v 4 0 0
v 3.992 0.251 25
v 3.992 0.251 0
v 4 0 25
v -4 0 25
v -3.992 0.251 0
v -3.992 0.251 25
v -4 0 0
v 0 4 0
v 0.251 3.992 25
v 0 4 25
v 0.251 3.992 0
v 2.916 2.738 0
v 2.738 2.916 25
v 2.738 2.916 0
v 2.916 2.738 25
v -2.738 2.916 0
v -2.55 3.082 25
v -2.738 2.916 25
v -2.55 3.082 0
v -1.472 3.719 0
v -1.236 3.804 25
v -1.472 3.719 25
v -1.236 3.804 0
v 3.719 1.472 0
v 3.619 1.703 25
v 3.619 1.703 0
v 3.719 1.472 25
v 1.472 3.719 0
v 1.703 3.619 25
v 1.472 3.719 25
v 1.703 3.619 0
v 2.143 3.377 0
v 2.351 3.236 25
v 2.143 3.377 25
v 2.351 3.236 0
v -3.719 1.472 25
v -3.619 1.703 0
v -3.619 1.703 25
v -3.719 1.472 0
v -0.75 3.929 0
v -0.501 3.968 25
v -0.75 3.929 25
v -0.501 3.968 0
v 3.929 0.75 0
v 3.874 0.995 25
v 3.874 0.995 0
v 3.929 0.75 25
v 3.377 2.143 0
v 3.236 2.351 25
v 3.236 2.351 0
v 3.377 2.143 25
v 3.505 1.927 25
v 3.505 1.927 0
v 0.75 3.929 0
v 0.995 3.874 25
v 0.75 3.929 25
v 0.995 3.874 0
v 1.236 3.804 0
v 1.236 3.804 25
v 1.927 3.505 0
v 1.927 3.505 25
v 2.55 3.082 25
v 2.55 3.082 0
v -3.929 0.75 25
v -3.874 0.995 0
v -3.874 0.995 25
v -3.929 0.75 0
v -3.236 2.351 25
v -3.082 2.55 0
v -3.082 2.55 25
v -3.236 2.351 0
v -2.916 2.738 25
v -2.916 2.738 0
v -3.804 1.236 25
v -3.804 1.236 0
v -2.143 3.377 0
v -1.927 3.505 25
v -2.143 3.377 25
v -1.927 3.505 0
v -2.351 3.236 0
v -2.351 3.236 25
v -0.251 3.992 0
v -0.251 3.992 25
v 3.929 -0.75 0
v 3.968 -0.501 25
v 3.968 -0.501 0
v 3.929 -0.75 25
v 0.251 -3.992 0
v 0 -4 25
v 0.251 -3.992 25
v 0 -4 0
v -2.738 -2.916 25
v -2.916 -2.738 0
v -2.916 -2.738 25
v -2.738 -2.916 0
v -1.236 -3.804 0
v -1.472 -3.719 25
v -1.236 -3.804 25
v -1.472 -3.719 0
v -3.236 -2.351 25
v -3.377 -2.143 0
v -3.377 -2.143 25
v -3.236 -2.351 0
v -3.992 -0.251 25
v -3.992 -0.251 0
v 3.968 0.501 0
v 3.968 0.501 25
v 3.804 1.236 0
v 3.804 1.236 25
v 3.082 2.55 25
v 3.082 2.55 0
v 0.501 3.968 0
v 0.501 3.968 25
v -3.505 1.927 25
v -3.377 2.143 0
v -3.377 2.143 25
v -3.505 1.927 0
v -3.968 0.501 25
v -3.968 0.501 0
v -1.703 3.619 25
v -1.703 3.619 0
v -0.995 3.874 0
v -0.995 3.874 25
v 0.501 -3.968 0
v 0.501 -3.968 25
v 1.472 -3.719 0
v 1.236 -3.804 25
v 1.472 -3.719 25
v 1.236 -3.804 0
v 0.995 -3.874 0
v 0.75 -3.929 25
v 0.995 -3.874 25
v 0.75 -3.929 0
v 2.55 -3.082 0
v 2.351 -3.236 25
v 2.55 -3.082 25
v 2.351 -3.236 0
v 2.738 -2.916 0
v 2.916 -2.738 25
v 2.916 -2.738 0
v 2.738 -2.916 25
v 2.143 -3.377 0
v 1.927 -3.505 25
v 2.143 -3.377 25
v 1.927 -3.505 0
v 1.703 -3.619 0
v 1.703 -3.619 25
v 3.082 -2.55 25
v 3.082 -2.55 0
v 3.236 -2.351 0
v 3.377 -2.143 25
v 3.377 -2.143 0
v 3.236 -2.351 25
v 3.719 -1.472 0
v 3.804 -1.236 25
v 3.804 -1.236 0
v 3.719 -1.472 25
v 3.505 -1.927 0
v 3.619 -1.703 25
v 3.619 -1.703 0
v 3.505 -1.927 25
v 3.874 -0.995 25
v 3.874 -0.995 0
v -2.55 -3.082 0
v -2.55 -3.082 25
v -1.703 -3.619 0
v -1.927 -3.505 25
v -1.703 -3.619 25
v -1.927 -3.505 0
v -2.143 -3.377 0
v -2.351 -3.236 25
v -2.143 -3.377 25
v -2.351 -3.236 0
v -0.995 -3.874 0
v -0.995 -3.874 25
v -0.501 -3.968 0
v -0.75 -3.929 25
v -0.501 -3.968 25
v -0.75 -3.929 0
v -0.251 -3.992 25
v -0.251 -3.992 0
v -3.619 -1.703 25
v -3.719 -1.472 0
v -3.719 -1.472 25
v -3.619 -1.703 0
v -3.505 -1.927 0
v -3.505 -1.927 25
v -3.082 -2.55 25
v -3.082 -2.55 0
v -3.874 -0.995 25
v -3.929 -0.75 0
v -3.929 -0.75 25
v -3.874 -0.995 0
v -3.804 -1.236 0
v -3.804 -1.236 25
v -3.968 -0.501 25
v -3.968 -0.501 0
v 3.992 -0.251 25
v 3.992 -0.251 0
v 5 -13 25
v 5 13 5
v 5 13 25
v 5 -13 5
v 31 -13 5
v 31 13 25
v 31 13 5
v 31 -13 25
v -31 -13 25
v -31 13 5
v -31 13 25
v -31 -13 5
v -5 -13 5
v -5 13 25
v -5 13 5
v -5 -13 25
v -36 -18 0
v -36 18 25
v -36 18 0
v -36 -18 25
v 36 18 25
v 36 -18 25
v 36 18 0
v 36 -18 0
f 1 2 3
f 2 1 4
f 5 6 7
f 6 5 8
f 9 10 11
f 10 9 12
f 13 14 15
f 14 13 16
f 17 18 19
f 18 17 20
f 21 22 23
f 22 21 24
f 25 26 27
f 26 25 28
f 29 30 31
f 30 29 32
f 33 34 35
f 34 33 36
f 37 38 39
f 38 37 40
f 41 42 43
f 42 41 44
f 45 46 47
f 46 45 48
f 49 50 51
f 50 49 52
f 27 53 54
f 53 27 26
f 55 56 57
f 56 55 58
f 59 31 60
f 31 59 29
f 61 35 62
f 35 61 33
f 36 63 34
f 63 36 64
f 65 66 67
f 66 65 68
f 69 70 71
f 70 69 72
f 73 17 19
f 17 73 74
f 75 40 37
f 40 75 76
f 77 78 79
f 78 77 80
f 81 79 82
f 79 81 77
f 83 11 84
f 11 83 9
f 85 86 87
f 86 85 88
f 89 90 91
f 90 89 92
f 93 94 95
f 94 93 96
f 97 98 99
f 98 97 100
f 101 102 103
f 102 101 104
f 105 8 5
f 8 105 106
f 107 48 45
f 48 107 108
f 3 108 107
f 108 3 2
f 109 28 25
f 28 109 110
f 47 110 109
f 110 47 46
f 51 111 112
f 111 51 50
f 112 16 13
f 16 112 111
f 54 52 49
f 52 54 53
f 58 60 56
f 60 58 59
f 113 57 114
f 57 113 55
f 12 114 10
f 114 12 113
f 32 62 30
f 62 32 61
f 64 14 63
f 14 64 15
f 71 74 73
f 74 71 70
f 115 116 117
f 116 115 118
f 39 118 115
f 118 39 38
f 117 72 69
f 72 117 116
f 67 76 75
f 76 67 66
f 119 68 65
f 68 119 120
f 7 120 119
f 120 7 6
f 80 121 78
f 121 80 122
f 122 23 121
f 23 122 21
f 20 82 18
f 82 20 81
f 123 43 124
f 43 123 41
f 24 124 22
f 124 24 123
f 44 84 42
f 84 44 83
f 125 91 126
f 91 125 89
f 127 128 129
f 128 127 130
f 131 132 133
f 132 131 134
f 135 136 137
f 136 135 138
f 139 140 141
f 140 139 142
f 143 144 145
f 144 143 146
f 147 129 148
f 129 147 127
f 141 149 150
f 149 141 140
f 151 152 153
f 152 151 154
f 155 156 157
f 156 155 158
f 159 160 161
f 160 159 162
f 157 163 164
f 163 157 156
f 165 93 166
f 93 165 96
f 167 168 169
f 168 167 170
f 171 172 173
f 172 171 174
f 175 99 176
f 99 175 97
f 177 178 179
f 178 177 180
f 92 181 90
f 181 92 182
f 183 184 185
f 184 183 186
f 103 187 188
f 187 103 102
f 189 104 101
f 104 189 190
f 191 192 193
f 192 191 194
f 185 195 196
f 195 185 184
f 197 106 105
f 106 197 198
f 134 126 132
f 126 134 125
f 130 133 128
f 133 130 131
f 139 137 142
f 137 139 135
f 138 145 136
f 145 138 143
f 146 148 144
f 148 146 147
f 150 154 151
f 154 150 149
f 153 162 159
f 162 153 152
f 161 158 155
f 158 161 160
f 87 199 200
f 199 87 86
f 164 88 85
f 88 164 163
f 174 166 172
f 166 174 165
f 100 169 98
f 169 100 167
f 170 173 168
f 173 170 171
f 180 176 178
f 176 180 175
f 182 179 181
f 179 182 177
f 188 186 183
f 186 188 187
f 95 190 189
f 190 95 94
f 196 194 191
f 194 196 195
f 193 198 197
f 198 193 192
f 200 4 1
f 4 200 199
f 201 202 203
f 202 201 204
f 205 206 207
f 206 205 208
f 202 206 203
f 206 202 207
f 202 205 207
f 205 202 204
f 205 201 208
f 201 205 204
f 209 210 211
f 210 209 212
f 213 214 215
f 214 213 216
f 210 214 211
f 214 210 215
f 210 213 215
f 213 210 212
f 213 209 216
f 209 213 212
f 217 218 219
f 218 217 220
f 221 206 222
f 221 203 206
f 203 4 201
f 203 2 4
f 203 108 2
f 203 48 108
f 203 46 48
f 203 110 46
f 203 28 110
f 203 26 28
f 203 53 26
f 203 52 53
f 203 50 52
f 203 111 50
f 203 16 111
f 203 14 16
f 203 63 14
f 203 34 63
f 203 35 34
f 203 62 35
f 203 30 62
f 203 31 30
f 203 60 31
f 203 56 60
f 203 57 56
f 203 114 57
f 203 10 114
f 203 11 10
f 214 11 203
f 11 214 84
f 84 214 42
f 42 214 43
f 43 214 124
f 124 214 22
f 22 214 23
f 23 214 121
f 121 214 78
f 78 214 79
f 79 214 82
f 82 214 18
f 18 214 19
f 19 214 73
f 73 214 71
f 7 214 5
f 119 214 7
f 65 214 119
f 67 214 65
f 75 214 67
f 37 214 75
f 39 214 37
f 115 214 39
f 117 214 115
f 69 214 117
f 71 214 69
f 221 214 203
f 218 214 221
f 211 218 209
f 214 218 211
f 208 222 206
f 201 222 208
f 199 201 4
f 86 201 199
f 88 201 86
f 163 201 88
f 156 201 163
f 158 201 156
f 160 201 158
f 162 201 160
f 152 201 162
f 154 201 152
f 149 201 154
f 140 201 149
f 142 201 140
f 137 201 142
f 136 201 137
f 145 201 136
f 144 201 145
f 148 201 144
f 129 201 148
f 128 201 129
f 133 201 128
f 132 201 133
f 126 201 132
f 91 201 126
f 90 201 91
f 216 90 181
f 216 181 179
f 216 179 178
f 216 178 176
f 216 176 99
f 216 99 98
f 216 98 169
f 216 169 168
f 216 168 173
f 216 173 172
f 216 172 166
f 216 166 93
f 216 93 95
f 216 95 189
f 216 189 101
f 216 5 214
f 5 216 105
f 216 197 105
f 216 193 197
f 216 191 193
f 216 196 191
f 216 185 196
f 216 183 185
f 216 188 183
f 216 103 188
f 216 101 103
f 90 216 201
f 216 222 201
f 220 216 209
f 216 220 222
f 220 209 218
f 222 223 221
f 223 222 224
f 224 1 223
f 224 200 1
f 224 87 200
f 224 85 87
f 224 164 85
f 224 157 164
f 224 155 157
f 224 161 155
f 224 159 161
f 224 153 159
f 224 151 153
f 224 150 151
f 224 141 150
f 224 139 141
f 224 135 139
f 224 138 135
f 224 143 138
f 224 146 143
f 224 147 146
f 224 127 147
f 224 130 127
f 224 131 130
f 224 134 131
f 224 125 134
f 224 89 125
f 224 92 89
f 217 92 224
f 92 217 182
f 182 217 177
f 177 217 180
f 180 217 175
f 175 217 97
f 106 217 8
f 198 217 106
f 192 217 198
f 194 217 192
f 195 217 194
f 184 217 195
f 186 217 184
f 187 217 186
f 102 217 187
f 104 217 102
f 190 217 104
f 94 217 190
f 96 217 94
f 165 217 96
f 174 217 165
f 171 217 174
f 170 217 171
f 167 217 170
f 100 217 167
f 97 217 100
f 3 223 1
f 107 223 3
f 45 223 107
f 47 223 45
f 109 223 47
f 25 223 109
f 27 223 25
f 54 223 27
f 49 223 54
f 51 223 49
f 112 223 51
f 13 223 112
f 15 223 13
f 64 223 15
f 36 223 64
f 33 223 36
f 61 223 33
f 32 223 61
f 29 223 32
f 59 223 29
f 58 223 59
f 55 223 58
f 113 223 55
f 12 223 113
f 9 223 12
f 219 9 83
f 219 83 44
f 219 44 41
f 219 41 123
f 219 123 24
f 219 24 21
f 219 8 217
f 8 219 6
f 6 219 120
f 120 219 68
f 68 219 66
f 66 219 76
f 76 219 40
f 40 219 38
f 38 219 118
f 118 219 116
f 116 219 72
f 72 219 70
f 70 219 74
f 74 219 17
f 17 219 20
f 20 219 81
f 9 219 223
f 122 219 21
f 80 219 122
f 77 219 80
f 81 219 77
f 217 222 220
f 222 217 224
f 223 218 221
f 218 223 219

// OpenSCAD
$fn = 100;
alsquareside = 26;
motorshaftdia = 8;
distcentertocenterextrusions = 36;
extrusionsurrond = 5;
surrondheight = 20;


module gimbalholder(){
    difference(){
        union(){
            translate([-(distcentertocenterextrusions + alsquareside + extrusionsurrond * 2)/2,-(alsquareside + extrusionsurrond * 2)/2,0]){cube([distcentertocenterextrusions + alsquareside + extrusionsurrond * 2, alsquareside + extrusionsurrond * 2, extrusionsurrond + surrondheight]);}
        }
        
        union(){
            translate([0,0,-.1]){cylinder(r = motorshaftdia/2, h = extrusionsurrond + surrondheight + 1);}
            translate([distcentertocenterextrusions/2-alsquareside/2,-alsquareside/2,extrusionsurrond]){cube([alsquareside, alsquareside,extrusionsurrond+surrondheight + 1]);}
            translate([-distcentertocenterextrusions/2-alsquareside/2,-alsquareside/2,extrusionsurrond]){cube([alsquareside, alsquareside,extrusionsurrond+surrondheight + 1]);}
        }
       
}}
gimbalholder();
